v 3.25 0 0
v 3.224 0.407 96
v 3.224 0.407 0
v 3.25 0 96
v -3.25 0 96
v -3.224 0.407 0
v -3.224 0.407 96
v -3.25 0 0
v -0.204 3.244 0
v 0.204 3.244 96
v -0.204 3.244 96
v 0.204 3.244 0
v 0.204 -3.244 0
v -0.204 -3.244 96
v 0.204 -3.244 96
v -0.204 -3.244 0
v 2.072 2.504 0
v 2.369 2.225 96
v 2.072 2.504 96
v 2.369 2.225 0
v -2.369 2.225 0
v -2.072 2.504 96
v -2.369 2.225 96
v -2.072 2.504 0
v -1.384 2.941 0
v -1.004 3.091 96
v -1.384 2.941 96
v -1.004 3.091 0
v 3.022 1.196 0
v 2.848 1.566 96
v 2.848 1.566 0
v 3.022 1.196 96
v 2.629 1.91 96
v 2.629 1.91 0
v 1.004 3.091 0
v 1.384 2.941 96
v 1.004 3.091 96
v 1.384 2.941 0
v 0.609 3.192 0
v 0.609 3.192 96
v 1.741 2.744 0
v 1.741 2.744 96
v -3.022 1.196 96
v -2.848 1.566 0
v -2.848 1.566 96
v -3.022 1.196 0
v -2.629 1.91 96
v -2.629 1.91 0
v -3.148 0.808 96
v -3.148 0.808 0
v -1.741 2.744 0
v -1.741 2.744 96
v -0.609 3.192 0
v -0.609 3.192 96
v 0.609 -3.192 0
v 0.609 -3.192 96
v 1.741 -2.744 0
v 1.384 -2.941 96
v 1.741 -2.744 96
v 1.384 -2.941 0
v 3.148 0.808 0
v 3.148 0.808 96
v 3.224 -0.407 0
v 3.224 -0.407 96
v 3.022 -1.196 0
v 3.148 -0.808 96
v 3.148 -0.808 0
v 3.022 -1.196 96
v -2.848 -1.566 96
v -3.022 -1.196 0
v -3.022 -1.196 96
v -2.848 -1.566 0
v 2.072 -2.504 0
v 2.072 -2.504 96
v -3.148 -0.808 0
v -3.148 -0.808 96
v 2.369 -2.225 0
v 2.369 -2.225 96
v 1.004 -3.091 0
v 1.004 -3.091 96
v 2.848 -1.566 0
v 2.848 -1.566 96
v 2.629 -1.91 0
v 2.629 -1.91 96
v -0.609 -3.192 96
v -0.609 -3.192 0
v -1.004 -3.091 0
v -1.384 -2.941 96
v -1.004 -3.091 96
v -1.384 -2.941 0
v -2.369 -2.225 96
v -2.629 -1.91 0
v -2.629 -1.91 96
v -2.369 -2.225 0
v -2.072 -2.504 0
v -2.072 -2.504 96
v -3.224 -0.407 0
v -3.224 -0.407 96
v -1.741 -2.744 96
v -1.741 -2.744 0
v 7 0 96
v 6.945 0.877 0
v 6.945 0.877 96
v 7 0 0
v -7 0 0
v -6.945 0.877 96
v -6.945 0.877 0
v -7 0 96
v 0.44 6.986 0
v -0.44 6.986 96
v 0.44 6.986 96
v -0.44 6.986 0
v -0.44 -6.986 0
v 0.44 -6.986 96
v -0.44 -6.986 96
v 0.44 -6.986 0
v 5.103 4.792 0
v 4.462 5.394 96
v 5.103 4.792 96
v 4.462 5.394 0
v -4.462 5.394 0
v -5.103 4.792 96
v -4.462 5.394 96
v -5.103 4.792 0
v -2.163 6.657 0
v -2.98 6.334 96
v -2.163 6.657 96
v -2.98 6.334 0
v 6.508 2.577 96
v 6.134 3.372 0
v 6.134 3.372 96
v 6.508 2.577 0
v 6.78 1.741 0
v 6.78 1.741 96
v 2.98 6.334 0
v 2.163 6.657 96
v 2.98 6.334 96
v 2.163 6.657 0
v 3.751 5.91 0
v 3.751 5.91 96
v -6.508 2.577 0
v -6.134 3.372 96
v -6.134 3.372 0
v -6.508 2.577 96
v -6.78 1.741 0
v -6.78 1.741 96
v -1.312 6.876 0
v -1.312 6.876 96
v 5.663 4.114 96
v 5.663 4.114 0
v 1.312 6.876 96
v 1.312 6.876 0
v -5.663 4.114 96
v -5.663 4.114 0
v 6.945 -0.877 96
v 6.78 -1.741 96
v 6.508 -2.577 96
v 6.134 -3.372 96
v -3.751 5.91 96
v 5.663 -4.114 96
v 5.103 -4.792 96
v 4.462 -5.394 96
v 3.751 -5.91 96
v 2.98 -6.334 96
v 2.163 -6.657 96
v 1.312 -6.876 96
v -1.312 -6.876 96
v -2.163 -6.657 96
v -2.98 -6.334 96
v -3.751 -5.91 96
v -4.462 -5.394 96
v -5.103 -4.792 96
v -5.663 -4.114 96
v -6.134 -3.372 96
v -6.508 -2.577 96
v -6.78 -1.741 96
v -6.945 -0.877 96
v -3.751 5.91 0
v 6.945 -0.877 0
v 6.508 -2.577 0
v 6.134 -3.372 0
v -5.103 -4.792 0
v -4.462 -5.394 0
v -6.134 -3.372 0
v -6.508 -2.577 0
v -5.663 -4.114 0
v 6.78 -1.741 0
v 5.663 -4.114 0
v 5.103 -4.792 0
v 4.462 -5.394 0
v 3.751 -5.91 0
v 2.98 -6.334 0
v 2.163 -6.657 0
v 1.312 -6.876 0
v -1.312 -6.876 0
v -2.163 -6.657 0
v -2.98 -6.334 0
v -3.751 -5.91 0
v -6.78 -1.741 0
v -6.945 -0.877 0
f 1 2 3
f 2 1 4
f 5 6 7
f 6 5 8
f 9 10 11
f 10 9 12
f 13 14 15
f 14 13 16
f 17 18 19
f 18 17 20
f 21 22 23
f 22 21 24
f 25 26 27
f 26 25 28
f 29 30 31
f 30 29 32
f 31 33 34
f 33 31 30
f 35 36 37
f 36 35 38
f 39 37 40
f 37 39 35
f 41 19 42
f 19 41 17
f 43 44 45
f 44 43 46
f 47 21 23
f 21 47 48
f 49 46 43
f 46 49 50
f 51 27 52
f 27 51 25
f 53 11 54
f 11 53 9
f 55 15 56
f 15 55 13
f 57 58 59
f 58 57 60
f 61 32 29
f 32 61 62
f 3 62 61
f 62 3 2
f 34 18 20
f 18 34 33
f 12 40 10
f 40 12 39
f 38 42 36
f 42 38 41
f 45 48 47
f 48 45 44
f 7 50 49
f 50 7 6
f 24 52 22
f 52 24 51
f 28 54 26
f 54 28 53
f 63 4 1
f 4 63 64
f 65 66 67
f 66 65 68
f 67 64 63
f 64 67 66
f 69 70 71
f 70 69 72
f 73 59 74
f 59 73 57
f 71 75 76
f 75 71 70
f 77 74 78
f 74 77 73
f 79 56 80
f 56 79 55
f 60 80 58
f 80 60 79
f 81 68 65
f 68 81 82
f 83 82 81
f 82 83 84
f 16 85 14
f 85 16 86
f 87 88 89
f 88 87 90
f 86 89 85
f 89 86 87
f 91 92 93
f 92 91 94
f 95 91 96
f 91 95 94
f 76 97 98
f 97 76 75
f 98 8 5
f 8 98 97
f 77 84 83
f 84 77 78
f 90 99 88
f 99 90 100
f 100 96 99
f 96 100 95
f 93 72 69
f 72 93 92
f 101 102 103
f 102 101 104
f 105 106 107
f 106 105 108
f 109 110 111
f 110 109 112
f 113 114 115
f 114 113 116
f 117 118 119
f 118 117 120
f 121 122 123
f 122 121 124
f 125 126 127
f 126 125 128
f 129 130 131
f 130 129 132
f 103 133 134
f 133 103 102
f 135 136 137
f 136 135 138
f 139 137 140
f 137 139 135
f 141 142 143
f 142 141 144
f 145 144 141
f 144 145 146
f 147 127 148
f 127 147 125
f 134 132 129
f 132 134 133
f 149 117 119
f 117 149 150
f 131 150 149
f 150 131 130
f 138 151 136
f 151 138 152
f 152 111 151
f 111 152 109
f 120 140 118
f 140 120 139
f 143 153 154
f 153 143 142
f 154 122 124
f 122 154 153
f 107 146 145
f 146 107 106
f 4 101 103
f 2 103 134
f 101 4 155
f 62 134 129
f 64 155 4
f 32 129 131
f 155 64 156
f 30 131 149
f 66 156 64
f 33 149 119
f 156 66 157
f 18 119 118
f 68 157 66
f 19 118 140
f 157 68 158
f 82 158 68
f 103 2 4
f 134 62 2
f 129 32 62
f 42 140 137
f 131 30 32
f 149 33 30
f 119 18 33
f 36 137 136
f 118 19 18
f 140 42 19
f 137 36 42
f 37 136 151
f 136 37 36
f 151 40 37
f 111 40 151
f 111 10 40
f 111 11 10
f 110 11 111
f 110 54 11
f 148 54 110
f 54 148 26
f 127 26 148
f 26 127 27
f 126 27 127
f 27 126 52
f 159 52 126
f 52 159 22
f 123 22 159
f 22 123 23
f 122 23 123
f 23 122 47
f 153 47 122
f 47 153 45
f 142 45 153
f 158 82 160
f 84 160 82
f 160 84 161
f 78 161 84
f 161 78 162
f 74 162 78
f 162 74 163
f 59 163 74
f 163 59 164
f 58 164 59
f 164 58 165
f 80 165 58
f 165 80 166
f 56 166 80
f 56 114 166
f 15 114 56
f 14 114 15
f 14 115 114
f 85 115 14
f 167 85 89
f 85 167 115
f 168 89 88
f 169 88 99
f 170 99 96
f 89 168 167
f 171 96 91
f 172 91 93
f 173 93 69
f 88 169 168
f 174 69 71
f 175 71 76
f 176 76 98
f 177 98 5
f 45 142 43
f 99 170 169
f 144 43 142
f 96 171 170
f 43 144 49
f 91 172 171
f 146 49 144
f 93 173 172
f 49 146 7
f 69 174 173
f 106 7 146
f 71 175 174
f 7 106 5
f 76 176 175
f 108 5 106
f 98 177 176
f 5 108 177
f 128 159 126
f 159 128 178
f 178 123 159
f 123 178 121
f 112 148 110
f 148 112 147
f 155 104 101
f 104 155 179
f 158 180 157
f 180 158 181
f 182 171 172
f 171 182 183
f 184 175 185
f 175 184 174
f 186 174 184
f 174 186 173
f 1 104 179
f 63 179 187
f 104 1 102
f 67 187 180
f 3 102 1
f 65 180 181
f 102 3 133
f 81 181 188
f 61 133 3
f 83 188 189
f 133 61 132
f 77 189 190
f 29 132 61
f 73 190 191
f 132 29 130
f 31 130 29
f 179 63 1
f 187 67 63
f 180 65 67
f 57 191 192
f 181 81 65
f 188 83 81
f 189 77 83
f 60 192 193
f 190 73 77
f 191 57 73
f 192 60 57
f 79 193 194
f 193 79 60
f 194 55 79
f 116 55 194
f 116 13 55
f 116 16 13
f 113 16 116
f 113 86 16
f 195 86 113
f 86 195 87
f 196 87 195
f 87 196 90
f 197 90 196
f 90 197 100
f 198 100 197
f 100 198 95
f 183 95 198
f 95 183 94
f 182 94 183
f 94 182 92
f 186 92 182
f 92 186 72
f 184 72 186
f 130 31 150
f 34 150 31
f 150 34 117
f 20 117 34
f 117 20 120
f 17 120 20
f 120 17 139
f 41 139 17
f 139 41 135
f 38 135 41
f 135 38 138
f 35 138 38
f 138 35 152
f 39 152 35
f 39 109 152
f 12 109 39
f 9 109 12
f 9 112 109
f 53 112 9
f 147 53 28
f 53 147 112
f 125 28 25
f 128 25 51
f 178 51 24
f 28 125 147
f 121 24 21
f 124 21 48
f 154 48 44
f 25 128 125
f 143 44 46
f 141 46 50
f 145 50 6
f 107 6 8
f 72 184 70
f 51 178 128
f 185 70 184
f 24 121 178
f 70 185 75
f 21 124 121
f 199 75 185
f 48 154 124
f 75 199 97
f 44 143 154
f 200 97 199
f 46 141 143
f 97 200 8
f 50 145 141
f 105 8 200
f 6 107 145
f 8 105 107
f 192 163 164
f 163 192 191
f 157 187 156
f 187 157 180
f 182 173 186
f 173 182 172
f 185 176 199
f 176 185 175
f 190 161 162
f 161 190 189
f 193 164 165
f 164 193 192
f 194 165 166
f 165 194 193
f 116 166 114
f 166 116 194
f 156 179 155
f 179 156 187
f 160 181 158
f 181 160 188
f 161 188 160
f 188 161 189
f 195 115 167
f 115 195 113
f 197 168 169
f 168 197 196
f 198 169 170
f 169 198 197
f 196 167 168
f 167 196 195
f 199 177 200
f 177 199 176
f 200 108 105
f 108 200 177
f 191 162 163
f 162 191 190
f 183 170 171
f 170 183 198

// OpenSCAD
$fn = 50;


difference() {
	union() {
		cylinder(h = 96, r = 7.0000000000);
	}
	union() {
		translate(v = [0.0000000000, 0.0000000000, -100.0000000000]) {
			cylinder(h = 200, r = 3.2500000000);
		}
		cylinder(h = 96, r = 1.8000000000);
		cylinder(h = 96, r = 1.8000000000);
		cylinder(h = 96, r = 1.8000000000);
	}
}
